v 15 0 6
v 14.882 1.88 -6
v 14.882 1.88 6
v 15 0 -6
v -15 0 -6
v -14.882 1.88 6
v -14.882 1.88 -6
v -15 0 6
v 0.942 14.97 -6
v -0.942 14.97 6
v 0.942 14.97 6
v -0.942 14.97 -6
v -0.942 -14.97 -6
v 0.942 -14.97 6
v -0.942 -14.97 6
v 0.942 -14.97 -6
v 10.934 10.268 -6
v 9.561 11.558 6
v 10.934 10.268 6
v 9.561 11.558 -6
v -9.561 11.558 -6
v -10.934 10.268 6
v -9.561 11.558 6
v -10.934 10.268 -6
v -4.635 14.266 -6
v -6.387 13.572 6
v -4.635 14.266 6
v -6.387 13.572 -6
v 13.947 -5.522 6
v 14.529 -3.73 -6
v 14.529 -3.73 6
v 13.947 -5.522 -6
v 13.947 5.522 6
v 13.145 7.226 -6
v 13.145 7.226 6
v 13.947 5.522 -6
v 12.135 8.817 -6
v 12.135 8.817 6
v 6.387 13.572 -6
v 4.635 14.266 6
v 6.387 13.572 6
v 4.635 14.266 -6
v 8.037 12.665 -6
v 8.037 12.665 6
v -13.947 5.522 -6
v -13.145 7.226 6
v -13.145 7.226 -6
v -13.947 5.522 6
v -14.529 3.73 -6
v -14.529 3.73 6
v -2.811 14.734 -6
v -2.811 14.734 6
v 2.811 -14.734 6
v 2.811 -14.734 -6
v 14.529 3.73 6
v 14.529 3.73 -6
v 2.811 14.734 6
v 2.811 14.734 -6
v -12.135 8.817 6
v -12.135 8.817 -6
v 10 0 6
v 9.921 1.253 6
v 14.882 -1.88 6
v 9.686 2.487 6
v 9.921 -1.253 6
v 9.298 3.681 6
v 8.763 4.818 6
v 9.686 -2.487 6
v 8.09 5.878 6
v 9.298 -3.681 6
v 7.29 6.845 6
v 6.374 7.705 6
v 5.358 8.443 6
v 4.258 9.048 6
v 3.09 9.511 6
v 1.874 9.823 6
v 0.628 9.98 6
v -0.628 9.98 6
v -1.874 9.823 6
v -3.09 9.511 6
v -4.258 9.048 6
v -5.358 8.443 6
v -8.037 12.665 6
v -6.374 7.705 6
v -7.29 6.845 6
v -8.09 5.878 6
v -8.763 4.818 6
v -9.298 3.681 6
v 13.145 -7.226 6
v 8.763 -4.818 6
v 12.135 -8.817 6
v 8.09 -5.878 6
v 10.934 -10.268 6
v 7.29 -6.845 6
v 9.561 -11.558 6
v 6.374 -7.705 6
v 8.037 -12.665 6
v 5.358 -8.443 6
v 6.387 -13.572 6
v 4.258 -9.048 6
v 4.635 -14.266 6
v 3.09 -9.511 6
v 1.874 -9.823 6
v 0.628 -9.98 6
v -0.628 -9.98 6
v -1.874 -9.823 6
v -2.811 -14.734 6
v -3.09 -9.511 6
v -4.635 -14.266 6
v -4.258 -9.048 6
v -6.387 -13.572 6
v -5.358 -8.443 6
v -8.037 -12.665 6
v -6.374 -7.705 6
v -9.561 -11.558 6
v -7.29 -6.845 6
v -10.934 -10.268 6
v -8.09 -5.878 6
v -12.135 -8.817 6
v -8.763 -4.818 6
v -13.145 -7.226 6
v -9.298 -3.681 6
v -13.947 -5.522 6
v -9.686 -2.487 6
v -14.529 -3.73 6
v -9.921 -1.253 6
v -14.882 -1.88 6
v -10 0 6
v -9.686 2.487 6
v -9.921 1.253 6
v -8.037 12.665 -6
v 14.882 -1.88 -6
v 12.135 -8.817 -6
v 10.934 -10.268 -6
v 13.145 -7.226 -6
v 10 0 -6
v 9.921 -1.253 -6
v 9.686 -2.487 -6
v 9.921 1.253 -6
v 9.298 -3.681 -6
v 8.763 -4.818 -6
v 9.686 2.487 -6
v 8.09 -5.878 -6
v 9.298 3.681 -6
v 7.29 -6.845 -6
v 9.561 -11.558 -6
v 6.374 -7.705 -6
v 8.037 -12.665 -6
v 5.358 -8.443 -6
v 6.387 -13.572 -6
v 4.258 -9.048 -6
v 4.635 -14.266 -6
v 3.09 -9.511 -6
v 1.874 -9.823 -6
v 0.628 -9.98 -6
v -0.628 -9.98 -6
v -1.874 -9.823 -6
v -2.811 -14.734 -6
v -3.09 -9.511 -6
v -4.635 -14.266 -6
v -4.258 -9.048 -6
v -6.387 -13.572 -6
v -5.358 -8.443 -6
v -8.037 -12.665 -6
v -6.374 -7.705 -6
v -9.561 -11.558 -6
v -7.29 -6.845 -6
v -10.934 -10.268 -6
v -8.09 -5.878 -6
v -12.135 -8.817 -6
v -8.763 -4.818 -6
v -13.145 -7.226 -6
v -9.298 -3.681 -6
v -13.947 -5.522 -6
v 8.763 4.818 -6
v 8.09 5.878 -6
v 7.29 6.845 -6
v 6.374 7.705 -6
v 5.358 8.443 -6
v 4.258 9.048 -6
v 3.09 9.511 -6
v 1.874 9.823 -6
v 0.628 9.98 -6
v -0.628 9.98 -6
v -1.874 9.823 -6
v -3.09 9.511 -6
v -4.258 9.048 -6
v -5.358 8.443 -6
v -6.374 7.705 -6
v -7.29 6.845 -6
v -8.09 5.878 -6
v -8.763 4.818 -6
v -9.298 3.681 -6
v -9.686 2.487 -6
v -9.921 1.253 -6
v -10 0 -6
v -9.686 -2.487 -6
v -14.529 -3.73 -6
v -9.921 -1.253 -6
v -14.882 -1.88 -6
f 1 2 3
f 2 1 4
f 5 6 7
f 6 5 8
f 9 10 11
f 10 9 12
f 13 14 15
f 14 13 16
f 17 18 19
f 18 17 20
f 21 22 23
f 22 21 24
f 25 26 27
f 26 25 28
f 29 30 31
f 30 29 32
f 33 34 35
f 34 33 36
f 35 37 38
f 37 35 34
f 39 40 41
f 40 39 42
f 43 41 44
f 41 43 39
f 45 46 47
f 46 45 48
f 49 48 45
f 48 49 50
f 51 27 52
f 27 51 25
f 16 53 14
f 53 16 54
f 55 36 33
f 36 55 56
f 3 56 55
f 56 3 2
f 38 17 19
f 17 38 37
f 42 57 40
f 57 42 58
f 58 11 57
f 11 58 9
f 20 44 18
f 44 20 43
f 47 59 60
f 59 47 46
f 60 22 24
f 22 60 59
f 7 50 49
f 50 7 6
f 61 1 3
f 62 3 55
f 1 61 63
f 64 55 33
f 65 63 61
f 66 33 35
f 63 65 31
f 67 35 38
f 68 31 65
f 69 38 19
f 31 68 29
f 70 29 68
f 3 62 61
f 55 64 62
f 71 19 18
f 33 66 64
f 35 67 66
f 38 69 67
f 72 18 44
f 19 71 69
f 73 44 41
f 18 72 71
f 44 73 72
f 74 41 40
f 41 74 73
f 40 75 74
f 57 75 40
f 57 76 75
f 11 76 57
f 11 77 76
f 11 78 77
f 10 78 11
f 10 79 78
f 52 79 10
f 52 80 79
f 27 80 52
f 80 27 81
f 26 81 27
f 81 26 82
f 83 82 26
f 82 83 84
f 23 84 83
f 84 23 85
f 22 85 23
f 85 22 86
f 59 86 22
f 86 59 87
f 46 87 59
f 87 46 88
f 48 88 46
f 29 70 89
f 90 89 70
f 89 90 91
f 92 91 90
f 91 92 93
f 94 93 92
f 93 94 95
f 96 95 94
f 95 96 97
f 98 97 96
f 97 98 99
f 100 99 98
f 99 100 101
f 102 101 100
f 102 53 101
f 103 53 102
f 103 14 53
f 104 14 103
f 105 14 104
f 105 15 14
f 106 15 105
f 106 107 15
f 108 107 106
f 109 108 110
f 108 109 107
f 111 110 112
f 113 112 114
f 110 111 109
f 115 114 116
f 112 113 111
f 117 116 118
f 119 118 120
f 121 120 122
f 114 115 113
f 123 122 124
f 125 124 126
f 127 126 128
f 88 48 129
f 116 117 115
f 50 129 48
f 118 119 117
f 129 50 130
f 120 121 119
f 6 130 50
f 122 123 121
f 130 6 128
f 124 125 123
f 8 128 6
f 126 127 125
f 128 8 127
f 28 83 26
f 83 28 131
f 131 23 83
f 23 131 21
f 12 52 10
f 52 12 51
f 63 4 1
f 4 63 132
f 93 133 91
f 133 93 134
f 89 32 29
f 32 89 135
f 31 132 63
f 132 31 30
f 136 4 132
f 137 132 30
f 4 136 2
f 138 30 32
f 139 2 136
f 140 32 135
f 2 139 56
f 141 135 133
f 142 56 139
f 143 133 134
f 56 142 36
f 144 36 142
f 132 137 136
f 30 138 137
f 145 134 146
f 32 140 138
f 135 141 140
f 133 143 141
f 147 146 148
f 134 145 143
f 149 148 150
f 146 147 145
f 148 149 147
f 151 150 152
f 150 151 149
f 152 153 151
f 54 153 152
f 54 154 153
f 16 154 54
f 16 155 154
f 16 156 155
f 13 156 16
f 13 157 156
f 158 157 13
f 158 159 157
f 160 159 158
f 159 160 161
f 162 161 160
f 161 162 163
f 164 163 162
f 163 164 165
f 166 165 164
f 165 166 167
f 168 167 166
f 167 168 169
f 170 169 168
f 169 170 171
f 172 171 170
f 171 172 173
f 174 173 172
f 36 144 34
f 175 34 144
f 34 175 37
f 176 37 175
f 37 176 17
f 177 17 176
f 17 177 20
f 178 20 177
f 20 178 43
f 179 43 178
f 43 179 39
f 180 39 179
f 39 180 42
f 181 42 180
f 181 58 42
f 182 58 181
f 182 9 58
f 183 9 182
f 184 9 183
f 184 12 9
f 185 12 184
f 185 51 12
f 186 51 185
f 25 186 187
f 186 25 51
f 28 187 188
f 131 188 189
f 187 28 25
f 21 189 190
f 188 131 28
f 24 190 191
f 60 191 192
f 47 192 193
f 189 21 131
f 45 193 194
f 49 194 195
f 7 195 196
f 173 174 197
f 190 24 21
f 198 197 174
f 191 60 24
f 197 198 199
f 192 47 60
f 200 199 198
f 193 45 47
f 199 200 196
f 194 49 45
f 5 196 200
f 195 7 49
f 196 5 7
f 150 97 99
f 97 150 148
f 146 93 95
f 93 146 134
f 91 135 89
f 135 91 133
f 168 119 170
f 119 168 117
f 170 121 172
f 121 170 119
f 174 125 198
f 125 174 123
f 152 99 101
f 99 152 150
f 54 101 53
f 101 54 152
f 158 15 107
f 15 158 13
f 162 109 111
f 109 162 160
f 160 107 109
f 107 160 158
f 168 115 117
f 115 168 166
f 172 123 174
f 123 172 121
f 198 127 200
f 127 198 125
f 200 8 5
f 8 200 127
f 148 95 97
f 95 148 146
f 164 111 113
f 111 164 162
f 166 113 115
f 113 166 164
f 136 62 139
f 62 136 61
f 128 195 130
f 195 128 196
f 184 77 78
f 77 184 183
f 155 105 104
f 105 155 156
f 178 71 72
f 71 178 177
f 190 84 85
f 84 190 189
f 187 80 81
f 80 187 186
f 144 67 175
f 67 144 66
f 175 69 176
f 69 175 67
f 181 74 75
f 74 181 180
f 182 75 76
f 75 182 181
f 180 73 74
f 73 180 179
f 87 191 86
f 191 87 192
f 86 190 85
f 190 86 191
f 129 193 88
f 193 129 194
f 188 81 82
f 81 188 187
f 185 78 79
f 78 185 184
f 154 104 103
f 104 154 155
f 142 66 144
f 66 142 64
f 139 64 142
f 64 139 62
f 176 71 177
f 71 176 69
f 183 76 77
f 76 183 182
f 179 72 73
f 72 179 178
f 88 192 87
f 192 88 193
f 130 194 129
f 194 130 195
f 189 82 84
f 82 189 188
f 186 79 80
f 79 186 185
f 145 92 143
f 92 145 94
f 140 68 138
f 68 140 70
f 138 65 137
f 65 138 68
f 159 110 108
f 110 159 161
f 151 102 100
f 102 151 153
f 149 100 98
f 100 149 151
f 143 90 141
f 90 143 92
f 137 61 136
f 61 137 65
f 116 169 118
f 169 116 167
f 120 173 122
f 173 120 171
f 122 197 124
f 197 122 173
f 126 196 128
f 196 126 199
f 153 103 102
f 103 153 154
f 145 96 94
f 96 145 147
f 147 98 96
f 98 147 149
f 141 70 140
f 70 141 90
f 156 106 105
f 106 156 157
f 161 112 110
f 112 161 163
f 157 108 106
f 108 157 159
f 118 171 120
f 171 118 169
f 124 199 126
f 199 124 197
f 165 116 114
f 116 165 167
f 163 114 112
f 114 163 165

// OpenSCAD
$fn = 50;


difference() {
	union() {
		translate(v = [0, 0, -6.0000000000]) {
			cylinder(h = 12, r = 15.0000000000);
		}
	}
	union() {
		translate(v = [0, 0, -100.0000000000]) {
			cylinder(h = 200, r = 10);
		}
	}
}
